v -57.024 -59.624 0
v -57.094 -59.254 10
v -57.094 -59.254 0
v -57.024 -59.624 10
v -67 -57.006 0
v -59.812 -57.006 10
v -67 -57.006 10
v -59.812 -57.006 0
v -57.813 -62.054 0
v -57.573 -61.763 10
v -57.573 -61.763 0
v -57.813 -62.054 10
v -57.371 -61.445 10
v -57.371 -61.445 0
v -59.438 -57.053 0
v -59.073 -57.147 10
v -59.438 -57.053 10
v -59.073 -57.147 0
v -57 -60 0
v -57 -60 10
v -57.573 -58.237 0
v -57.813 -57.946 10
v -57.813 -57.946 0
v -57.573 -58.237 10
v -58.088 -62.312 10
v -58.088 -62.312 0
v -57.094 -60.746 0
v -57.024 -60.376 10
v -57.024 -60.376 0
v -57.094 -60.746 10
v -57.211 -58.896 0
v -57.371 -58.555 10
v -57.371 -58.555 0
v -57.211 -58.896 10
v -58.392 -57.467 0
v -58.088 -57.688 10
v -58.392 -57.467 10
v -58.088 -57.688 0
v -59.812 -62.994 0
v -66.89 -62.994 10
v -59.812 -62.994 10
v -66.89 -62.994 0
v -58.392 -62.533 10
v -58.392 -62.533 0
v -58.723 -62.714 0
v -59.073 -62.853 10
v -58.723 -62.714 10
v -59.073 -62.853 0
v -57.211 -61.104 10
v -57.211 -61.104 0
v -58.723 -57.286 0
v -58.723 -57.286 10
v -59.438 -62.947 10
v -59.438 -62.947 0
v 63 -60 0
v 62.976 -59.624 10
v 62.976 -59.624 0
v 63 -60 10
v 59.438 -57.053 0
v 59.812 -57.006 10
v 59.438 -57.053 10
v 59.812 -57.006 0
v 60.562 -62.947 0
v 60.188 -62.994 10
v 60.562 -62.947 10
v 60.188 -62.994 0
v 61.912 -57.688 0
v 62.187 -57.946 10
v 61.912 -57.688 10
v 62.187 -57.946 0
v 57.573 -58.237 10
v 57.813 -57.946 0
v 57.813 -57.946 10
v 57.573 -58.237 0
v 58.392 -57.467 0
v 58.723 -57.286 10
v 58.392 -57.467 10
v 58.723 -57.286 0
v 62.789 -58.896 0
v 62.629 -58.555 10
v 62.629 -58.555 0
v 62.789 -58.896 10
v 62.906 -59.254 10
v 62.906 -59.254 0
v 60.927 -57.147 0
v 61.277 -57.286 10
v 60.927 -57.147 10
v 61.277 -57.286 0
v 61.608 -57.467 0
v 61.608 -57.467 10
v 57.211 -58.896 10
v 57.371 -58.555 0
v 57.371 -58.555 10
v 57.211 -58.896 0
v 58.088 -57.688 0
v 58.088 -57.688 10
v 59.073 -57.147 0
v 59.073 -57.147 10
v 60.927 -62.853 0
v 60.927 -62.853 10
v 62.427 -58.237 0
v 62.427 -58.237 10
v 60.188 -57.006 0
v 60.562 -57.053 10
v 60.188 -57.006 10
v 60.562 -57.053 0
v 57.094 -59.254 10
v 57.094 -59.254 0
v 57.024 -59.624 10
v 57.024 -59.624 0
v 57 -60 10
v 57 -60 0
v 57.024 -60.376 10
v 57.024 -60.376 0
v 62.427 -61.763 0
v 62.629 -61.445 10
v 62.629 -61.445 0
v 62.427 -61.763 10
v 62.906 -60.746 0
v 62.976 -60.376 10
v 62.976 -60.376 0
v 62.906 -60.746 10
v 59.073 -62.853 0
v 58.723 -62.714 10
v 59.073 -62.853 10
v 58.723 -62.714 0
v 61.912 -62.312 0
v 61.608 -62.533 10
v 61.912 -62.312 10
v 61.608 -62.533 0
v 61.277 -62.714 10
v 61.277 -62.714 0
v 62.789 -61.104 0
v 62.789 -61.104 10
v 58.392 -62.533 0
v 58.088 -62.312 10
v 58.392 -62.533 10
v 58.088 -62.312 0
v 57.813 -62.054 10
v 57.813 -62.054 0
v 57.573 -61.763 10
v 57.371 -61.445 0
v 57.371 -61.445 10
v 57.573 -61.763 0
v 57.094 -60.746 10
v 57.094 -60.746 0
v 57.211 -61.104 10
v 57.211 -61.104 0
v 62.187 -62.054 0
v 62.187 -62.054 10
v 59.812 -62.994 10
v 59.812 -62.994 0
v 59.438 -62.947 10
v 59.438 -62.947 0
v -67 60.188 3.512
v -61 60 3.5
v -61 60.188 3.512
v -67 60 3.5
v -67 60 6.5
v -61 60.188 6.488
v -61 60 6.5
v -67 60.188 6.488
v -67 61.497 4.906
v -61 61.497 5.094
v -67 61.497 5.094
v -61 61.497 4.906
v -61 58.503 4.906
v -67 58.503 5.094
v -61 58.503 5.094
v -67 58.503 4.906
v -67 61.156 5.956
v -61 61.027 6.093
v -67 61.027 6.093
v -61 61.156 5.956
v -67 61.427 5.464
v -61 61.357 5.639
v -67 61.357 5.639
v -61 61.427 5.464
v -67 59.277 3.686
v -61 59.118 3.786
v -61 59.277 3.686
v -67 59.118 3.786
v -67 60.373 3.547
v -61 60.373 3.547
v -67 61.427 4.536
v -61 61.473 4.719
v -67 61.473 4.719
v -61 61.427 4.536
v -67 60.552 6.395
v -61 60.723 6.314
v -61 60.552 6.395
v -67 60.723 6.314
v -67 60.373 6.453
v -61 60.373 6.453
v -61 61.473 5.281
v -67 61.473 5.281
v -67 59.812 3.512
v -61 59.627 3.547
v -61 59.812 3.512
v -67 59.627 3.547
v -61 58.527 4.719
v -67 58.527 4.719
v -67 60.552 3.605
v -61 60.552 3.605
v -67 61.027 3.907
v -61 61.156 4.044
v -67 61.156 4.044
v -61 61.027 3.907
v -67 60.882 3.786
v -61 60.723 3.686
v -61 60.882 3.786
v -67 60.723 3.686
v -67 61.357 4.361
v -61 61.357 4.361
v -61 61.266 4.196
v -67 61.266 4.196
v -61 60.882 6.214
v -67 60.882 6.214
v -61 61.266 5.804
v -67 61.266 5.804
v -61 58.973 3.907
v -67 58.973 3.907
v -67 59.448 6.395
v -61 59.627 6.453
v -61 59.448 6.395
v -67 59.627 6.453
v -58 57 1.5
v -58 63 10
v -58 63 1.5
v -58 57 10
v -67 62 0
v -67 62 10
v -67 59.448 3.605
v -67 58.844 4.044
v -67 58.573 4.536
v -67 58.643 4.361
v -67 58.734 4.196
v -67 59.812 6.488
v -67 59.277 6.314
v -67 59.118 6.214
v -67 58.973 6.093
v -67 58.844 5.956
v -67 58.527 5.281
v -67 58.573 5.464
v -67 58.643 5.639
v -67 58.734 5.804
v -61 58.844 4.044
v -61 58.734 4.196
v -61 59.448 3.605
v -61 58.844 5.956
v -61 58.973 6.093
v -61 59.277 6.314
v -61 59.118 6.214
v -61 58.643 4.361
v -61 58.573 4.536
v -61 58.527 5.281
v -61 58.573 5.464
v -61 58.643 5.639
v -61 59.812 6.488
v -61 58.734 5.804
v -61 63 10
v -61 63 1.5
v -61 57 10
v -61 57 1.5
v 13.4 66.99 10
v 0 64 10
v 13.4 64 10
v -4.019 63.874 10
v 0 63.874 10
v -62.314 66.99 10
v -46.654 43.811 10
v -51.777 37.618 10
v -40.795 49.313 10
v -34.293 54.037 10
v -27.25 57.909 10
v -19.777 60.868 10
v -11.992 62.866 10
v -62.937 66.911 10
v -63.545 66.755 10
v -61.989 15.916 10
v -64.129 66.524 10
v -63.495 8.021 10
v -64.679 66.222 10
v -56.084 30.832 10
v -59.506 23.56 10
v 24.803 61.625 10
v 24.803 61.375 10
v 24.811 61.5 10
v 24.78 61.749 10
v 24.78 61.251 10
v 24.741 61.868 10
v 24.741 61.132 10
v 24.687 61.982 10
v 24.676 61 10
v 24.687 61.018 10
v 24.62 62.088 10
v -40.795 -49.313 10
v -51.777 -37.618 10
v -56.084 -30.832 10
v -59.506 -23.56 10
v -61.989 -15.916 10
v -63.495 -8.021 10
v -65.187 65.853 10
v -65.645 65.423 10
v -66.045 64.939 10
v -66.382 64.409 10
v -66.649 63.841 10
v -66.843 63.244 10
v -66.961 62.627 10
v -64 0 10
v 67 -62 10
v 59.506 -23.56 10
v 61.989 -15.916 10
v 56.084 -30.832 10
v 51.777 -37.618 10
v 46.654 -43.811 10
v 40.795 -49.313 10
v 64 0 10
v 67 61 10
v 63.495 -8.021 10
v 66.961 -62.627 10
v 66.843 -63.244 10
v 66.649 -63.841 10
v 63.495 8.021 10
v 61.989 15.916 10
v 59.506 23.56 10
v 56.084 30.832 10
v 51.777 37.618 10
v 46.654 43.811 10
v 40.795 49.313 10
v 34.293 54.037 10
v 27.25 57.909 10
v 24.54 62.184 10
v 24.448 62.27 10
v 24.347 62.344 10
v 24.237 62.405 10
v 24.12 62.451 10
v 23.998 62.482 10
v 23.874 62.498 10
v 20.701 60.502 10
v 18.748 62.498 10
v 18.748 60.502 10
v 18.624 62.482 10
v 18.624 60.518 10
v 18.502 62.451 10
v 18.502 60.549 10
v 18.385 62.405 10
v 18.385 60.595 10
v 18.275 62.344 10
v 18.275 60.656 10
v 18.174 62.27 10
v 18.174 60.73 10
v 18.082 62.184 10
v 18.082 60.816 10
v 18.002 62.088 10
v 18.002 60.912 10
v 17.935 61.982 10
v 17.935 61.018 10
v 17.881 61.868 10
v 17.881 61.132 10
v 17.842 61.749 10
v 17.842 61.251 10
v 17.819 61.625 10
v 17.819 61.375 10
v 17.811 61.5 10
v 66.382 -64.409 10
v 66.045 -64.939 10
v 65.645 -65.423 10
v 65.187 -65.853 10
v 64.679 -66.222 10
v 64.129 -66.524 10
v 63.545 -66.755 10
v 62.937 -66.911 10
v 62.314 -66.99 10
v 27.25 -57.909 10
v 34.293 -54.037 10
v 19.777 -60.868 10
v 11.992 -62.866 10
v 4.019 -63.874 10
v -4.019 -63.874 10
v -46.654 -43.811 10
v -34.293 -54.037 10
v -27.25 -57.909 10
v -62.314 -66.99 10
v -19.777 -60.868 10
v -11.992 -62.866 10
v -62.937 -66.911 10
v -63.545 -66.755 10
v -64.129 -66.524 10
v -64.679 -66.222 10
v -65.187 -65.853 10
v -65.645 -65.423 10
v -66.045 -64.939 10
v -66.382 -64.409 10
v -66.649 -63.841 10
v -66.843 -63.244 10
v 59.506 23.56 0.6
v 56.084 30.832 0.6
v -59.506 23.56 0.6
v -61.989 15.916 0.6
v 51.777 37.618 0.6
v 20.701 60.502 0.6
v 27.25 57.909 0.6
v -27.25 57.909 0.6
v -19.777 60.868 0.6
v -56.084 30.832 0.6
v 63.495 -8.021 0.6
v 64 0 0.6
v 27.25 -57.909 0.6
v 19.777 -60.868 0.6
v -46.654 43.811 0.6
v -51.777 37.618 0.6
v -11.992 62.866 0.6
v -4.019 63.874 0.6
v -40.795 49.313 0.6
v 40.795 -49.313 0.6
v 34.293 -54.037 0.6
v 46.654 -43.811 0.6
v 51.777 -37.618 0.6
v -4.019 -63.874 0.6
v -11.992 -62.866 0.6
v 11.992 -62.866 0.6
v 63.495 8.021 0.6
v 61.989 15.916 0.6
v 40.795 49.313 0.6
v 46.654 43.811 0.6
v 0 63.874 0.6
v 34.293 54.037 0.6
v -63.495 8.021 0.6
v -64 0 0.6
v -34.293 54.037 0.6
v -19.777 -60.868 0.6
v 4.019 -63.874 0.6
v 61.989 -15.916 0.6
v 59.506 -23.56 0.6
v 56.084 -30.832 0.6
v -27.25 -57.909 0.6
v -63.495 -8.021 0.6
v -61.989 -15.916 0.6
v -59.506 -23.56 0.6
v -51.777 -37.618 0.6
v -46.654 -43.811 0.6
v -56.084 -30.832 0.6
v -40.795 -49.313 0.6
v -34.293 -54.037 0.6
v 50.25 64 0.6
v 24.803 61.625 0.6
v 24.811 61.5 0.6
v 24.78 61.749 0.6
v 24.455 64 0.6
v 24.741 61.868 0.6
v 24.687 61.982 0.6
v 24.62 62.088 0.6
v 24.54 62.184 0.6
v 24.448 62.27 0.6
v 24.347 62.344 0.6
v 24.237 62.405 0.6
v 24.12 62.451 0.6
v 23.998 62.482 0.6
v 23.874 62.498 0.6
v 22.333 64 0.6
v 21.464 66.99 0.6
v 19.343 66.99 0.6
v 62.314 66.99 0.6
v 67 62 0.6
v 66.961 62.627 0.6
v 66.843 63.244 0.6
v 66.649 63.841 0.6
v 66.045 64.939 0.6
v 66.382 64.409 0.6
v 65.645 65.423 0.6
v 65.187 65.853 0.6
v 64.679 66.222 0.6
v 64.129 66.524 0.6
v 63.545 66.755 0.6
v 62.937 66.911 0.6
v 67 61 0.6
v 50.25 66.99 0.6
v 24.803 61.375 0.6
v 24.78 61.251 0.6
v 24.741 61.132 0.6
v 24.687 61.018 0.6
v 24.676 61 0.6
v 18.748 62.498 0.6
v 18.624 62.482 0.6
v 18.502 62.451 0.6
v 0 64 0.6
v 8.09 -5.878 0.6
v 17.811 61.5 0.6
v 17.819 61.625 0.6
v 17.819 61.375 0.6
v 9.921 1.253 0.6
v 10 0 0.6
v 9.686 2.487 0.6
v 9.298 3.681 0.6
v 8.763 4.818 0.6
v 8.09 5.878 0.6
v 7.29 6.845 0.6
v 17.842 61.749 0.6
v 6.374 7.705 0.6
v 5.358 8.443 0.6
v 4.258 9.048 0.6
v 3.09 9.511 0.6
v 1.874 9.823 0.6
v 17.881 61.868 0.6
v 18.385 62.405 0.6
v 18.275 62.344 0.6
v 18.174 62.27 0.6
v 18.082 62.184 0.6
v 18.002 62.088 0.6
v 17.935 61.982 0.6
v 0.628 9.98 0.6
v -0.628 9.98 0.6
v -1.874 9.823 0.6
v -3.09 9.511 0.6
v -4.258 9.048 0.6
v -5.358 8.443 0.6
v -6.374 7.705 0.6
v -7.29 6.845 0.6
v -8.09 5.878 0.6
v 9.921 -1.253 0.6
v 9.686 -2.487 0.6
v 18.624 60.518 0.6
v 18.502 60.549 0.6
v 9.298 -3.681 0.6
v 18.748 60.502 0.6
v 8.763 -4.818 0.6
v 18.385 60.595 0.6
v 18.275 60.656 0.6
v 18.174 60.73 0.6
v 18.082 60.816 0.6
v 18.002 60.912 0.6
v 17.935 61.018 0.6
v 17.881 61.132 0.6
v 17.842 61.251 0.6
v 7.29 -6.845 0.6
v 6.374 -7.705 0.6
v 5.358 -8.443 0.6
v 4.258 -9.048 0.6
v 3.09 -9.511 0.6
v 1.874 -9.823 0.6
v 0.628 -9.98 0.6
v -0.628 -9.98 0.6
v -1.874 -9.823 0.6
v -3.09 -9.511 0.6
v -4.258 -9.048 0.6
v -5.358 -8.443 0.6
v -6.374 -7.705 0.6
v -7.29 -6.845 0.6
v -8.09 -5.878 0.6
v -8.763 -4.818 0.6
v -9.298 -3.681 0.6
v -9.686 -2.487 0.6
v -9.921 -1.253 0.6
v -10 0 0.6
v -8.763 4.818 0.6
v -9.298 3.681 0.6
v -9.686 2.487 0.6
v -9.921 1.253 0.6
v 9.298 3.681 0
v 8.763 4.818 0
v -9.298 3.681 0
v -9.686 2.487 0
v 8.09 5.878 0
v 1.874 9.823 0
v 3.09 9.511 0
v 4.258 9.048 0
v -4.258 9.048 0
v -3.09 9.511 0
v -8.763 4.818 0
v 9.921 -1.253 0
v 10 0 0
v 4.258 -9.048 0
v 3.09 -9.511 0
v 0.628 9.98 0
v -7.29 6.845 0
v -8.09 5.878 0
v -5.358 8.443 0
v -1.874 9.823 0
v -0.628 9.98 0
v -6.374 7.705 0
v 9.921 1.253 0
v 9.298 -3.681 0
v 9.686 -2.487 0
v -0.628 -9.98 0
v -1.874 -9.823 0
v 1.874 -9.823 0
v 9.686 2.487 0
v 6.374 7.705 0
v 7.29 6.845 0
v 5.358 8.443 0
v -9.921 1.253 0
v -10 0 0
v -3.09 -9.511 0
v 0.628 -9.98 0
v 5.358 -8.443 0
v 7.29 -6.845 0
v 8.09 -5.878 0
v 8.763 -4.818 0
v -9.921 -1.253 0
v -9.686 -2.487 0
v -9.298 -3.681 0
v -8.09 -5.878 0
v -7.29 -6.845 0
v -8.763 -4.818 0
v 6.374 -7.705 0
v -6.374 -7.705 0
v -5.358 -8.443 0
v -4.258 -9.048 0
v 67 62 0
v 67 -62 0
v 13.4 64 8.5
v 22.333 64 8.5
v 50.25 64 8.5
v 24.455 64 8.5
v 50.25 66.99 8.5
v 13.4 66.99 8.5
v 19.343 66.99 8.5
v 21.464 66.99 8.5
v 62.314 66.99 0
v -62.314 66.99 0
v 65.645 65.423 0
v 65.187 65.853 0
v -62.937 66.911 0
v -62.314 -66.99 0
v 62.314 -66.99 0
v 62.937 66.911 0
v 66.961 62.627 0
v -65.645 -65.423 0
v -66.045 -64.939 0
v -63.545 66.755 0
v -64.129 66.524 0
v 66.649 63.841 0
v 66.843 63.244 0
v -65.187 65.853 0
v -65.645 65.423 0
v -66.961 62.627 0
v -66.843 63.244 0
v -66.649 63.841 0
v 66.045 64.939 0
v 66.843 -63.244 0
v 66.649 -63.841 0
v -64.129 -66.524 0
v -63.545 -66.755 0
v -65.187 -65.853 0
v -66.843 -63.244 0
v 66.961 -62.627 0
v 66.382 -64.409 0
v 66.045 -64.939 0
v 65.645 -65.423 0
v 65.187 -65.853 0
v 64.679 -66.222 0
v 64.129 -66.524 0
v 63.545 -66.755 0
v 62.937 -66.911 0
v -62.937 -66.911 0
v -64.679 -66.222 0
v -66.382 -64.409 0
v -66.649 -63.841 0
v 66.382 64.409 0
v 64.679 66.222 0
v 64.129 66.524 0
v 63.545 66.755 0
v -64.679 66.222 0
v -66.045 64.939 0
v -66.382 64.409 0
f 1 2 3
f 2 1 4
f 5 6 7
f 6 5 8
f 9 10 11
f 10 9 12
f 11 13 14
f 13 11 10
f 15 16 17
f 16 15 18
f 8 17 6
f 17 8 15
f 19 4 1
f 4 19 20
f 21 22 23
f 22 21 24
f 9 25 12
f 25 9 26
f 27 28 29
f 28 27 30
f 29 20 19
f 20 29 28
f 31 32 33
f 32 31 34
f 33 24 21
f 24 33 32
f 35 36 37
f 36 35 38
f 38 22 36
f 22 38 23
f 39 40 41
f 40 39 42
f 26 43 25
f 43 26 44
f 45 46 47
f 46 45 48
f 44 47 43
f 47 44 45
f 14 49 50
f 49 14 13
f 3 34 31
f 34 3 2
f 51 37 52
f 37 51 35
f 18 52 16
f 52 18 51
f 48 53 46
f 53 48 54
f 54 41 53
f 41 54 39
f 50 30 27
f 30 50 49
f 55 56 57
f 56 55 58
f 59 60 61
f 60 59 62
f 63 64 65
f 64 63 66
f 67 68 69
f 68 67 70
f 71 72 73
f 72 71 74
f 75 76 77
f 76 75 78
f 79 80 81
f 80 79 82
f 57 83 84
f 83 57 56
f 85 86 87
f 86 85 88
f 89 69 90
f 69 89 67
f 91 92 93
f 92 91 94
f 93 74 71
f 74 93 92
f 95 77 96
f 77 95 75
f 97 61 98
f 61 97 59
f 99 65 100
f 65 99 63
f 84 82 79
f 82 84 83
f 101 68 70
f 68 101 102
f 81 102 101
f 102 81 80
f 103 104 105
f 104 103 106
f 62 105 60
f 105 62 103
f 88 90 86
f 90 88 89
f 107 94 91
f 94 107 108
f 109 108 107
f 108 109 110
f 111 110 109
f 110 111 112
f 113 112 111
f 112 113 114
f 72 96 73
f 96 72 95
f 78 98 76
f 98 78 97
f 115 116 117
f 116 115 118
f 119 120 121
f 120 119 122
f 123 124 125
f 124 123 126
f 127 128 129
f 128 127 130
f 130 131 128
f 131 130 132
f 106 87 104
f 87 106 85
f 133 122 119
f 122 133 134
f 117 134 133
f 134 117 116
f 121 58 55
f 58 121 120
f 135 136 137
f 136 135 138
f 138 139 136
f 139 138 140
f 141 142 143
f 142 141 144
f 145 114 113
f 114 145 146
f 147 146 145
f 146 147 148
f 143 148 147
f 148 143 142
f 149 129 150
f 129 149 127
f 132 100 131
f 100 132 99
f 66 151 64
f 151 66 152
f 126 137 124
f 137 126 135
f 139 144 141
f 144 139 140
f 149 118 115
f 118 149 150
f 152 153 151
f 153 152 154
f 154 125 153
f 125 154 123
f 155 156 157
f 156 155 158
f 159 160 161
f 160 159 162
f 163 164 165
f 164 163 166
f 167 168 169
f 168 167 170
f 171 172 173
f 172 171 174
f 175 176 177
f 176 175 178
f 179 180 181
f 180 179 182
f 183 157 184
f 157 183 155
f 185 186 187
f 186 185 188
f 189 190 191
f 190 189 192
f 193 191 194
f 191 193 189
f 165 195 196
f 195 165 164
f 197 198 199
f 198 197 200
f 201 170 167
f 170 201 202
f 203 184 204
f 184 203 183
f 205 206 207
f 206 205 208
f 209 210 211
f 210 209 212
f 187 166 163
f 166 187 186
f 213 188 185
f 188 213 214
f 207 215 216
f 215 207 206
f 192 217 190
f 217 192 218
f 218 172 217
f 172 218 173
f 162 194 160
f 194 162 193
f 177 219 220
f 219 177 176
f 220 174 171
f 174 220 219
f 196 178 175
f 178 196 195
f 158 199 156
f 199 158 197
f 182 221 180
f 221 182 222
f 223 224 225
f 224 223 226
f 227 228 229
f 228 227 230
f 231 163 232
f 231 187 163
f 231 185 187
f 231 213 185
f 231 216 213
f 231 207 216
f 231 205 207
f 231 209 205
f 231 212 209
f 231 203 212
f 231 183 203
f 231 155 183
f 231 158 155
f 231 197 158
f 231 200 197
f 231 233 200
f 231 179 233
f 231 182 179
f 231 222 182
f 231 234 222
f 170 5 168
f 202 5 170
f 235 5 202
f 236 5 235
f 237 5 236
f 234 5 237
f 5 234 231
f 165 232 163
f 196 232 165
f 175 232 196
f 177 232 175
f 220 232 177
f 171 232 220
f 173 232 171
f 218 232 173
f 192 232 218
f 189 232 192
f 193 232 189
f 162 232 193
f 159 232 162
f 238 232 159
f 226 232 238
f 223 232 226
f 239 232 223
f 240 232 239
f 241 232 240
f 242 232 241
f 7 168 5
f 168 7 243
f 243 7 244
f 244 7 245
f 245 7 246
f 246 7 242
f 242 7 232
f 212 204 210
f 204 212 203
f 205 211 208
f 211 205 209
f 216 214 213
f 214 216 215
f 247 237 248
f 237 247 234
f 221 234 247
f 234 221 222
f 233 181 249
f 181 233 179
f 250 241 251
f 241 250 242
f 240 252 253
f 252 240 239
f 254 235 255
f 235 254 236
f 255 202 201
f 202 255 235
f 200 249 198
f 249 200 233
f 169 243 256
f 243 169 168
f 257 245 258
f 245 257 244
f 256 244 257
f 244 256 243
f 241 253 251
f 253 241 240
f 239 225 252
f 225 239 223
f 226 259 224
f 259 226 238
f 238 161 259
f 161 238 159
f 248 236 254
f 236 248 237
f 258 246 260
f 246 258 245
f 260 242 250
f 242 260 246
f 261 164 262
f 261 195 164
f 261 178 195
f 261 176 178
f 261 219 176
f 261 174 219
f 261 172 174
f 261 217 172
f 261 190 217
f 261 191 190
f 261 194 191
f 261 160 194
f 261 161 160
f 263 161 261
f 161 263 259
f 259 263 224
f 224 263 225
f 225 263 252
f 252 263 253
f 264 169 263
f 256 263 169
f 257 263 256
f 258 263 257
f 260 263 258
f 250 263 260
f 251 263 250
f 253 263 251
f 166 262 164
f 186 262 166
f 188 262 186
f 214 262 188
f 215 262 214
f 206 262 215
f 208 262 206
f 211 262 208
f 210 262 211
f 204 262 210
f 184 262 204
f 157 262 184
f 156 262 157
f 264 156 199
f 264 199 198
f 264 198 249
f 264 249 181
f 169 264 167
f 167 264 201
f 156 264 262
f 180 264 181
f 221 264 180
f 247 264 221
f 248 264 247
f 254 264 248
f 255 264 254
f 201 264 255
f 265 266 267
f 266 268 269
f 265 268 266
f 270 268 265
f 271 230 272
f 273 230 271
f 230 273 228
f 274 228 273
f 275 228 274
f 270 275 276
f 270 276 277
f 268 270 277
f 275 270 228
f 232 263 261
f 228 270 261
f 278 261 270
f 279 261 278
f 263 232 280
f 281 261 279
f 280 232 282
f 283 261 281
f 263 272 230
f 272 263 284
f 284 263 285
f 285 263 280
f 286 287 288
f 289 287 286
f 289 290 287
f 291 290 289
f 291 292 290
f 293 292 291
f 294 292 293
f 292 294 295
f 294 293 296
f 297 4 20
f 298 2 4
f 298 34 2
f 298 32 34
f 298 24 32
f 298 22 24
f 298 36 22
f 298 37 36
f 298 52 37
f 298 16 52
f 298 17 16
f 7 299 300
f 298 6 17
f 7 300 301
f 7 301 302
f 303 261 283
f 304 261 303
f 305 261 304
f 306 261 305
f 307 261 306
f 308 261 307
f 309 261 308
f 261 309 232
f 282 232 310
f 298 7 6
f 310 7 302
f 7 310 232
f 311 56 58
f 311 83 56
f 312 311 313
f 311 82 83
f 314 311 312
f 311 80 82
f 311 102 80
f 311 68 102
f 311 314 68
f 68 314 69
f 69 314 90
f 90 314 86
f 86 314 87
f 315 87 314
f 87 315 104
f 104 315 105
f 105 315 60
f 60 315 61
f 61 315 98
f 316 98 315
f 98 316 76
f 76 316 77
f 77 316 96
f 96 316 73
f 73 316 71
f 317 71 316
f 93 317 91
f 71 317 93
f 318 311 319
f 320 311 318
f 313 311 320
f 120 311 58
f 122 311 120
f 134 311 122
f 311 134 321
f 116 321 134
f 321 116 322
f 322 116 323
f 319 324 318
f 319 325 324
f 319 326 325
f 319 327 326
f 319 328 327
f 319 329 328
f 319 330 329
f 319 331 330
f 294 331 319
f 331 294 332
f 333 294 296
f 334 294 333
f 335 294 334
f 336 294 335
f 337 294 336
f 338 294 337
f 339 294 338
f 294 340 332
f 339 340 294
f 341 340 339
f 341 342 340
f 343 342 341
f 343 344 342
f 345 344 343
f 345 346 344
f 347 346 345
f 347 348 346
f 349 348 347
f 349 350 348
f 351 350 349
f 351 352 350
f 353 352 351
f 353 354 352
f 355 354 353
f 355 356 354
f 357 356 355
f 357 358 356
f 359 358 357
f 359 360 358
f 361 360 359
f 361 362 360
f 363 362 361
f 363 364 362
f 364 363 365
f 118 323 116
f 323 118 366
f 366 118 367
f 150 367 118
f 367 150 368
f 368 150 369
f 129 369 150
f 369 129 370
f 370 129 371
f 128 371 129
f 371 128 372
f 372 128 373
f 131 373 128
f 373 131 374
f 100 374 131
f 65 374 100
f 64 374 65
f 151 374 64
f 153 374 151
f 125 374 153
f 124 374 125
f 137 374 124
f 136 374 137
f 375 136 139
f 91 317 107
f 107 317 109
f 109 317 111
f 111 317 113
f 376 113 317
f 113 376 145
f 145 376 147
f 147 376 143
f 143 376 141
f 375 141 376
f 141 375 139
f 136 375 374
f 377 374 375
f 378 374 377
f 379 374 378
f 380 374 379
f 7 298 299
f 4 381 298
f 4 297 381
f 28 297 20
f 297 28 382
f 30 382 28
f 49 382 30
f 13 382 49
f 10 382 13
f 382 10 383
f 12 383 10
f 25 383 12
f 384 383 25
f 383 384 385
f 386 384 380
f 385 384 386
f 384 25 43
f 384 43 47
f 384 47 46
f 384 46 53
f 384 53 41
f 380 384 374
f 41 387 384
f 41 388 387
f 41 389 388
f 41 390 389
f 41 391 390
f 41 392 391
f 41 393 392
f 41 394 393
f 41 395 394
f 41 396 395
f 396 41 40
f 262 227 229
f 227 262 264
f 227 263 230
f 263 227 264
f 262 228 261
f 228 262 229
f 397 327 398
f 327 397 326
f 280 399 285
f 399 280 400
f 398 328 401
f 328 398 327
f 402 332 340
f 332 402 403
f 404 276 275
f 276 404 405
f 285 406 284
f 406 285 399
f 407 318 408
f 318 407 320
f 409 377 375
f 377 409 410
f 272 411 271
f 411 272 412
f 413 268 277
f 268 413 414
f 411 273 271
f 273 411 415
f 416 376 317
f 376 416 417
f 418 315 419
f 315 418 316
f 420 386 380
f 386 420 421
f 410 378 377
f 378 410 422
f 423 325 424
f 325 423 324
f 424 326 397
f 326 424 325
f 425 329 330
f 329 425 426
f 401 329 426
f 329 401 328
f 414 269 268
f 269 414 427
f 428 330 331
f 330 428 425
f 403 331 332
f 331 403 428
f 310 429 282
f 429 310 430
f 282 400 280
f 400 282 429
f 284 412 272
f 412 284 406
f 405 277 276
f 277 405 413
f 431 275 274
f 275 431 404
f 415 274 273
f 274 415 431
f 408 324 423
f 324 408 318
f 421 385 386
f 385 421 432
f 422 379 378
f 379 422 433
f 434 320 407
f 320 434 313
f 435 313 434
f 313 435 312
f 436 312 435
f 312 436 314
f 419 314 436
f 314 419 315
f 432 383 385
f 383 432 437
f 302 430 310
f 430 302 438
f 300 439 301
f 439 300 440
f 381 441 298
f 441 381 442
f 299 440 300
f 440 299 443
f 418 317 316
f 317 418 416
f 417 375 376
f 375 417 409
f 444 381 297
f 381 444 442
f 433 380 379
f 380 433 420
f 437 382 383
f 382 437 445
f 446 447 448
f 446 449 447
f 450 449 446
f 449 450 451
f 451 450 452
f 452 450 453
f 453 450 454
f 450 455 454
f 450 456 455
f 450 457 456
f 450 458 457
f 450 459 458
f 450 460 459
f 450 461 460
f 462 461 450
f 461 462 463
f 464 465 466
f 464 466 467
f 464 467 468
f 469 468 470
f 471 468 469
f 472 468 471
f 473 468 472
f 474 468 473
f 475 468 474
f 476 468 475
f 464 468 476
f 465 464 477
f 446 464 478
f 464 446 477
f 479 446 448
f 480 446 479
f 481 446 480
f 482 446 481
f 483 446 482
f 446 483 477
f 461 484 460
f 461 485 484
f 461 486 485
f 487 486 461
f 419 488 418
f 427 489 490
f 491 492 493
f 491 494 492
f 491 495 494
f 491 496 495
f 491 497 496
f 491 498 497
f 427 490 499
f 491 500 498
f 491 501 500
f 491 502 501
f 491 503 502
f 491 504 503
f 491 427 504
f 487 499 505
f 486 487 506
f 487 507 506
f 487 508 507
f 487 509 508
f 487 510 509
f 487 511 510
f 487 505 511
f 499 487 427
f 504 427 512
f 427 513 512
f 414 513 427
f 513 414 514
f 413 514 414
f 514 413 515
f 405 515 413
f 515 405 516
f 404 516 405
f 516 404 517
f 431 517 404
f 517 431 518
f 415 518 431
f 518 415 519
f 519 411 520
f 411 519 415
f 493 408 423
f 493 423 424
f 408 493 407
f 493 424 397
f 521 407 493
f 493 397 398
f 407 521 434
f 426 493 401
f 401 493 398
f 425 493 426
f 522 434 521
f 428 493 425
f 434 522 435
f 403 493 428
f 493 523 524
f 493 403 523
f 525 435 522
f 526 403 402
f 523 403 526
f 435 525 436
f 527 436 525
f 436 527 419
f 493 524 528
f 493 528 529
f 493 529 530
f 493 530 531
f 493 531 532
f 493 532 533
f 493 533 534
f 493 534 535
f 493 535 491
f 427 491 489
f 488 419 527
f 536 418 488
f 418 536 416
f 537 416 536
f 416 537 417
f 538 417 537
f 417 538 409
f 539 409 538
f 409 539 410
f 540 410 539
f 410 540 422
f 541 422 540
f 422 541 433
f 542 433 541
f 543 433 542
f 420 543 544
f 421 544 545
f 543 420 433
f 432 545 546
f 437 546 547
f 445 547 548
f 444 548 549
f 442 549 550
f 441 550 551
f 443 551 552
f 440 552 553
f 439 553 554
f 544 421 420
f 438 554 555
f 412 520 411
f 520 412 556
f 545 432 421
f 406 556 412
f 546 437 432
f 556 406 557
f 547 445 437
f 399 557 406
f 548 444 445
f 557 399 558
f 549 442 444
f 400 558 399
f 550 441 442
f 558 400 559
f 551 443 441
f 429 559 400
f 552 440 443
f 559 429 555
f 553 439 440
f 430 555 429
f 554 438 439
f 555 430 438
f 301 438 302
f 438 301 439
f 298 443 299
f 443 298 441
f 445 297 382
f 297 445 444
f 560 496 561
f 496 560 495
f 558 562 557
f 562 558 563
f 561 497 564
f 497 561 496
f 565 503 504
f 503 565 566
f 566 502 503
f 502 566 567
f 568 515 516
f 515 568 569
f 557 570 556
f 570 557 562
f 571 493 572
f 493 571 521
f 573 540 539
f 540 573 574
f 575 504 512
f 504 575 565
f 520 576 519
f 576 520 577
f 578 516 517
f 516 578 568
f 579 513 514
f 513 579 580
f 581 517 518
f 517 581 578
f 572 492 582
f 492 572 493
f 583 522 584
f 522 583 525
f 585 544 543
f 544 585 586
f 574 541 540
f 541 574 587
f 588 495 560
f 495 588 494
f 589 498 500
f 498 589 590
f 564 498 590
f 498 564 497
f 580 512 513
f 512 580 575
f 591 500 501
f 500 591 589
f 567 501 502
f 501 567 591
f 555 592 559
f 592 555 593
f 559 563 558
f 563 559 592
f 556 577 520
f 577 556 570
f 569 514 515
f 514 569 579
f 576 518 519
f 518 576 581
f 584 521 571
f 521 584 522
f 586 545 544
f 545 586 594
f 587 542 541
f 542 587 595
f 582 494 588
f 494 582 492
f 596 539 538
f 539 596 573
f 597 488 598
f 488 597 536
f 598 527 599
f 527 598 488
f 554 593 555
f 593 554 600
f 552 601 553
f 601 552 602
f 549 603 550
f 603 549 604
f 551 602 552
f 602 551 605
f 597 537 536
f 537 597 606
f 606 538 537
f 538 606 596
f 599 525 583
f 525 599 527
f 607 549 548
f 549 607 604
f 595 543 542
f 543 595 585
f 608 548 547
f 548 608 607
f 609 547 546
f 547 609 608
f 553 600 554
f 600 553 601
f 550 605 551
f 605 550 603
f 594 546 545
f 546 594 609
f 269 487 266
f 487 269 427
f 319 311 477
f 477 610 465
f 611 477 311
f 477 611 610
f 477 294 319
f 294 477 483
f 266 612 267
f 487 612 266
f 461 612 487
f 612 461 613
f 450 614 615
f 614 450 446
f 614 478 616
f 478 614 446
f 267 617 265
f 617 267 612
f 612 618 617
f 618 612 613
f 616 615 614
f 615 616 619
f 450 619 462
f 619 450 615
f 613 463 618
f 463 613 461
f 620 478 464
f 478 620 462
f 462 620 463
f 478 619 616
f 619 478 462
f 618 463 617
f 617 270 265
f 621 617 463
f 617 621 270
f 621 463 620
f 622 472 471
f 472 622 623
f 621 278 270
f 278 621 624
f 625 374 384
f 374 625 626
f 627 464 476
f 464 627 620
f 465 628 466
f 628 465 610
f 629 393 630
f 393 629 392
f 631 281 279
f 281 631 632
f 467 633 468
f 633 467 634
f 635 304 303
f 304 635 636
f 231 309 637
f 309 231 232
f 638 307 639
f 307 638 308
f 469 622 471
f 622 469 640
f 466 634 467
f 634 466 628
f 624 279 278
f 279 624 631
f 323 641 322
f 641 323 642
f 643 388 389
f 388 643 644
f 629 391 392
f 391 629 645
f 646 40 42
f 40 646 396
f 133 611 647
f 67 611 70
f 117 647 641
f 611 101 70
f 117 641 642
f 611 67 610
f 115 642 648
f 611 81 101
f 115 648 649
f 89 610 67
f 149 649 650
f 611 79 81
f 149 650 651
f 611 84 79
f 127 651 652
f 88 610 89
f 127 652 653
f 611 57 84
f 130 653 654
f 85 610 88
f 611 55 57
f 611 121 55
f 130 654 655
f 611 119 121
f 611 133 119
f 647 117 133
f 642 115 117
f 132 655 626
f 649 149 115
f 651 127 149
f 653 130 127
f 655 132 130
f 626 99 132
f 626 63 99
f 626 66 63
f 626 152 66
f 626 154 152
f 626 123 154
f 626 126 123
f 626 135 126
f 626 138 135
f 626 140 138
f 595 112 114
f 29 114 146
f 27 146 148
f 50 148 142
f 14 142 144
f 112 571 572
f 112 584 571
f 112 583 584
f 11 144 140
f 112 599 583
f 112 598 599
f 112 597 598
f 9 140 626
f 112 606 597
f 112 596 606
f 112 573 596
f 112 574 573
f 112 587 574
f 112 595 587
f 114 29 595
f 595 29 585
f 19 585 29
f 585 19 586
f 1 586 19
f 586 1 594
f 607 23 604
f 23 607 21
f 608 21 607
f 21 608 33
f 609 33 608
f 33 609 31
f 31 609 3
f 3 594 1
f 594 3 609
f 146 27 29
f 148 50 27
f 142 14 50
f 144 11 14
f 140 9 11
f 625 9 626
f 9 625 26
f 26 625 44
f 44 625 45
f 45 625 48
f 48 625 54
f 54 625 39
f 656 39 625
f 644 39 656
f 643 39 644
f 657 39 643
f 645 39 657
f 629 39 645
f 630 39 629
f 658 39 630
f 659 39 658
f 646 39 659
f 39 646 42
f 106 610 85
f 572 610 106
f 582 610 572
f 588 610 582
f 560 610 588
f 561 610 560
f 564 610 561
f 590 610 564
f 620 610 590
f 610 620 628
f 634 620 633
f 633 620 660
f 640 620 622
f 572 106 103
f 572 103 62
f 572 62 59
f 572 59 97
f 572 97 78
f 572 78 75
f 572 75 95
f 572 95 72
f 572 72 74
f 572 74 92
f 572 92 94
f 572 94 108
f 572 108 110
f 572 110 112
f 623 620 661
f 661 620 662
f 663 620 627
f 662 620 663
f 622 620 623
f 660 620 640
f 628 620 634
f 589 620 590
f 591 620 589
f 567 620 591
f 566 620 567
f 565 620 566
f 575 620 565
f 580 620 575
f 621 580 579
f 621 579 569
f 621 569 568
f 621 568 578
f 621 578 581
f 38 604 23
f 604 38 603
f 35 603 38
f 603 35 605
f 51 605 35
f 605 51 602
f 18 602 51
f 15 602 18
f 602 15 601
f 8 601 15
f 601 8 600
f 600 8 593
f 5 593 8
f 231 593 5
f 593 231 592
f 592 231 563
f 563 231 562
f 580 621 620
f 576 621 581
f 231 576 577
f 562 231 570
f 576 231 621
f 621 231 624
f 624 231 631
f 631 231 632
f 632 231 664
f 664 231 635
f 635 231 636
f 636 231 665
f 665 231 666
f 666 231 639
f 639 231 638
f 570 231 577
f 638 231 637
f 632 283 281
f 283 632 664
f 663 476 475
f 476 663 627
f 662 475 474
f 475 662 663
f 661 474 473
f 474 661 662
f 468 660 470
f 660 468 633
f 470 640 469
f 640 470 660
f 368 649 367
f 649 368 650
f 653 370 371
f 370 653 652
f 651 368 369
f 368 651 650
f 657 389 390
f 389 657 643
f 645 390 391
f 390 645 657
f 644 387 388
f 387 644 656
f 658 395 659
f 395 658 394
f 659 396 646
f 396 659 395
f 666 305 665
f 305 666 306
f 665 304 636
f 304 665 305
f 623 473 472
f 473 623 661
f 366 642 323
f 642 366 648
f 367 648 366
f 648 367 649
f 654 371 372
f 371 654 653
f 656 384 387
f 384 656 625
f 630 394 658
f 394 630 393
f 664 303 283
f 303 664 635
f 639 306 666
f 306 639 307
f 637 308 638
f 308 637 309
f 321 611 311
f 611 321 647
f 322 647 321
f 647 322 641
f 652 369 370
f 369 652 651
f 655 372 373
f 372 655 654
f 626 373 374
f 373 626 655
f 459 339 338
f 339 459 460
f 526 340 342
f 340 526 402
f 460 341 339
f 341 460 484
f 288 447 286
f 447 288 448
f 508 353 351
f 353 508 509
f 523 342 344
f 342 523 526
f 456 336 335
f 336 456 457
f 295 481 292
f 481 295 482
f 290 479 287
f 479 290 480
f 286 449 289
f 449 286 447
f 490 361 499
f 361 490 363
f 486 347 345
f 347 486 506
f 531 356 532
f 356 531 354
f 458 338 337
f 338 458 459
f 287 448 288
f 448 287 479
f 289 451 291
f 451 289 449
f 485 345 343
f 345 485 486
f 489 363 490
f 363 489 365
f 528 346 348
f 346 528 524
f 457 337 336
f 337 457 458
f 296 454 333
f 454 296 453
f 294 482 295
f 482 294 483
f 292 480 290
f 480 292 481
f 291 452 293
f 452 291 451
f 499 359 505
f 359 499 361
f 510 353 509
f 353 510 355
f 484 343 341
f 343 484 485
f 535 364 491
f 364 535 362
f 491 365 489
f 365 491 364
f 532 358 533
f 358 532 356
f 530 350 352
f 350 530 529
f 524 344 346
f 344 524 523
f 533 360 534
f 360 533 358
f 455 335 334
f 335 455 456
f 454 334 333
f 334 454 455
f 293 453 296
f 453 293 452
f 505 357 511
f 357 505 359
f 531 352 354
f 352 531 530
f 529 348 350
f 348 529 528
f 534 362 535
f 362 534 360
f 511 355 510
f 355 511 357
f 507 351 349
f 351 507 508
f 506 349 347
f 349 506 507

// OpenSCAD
$fn = 50;


union() {
	difference() {
		union() {
			translate(v = [0, 0, 0]) {
				rotate(a = [0, 0, 0]) {
					hull() {
						translate(v = [-62.0000000000, 62.0000000000, 0]) {
							rotate(a = [0, 0, 0]) {
								translate(v = [0, 0, 0]) {
									rotate(a = [0, 0, 0]) {
										cylinder(h = 10, r = 5);
									}
								}
							}
						}
						translate(v = [62.0000000000, 62.0000000000, 0]) {
							rotate(a = [0, 0, 0]) {
								translate(v = [0, 0, 0]) {
									rotate(a = [0, 0, 0]) {
										cylinder(h = 10, r = 5);
									}
								}
							}
						}
						translate(v = [-62.0000000000, -62.0000000000, 0]) {
							rotate(a = [0, 0, 0]) {
								translate(v = [0, 0, 0]) {
									rotate(a = [0, 0, 0]) {
										cylinder(h = 10, r = 5);
									}
								}
							}
						}
						translate(v = [62.0000000000, -62.0000000000, 0]) {
							rotate(a = [0, 0, 0]) {
								translate(v = [0, 0, 0]) {
									rotate(a = [0, 0, 0]) {
										cylinder(h = 10, r = 5);
									}
								}
							}
						}
					}
				}
			}
		}
		union() {
			translate(v = [-67.5000000000, -60.0000000000, -125]) {
				rotate(a = [0, 0, 0]) {
					hull() {
						translate(v = [7.5000000000, 0, 0]) {
							rotate(a = [0, 0, 0]) {
								translate(v = [0, 0, 0]) {
									rotate(a = [0, 0, 0]) {
										cylinder(h = 250, r = 3.0000000000);
									}
								}
							}
						}
						translate(v = [-7.5000000000, 0, 0]) {
							rotate(a = [0, 0, 0]) {
								translate(v = [0, 0, 0]) {
									rotate(a = [0, 0, 0]) {
										cylinder(h = 250, r = 3.0000000000);
									}
								}
							}
						}
					}
				}
			}
			translate(v = [60.0000000000, -60.0000000000, -125.0000000000]) {
				rotate(a = [0, 0, 0]) {
					cylinder(h = 250, r = 3.0000000000);
				}
			}
			translate(v = [-67.0000000000, 60.0000000000, 5.0000000000]) {
				rotate(a = [0, 90, 0]) {
					cylinder(h = 9, r = 1.5000000000);
				}
			}
			translate(v = [-61.0000000000, 57.0000000000, 1.5000000000]) {
				rotate(a = [0, 0, 0]) {
					cube(size = [3, 6, 8.5000000000]);
				}
			}
			translate(v = [0, 0, 0.6000000000]) {
				rotate(a = [0, 0, 0]) {
					cylinder(h = 12.4000000000, r = 64.0000000000);
				}
			}
			translate(v = [0, 0, -5.0000000000]) {
				rotate(a = [0, 0, 0]) {
					cylinder(h = 10, r = 10.0000000000);
				}
			}
			translate(v = [0.0000000000, 61.0000000000, 0.6000000000]) {
				rotate(a = [0, 0, 0]) {
					cube(size = [67.0000000000, 3, 12.4000000000]);
				}
			}
			translate(v = [50.2500000000, 61.0000000000, 0.6000000000]) {
				rotate(a = [0, 0, 0]) {
					cube(size = [16.7500000000, 6, 12.4000000000]);
				}
			}
			translate(v = [13.4000000000, 61.0000000000, 8.5000000000]) {
				rotate(a = [0, 0, 0]) {
					cube(size = [53.6000000000, 6, 1.5000000000]);
				}
			}
			translate(v = [18.5833333333, 67.7500000000, 0.6000000000]) {
				rotate(a = [0, 0, -45]) {
					cube(size = [7.5000000000, 1.5000000000, 12.4000000000]);
				}
			}
			translate(v = [12.0610000000, 60.5000000000, 0.6000000000]) {
				rotate(a = [0, 0, 0]) {
					cube(size = [7.5000000000, 2, 9.4000000000]);
				}
			}
		}
	}
	union() {
		translate(v = [21.3110000000, 61.5000000000, 0]) {
			rotate(a = [0, 0, 0]) {
				hull() {
					translate(v = [2.5000000000, 0, 0]) {
						rotate(a = [0, 0, 0]) {
							translate(v = [0, 0, 0]) {
								rotate(a = [0, 0, 0]) {
									cylinder(h = 10, r = 1.0000000000);
								}
							}
						}
					}
					translate(v = [-2.5000000000, 0, 0]) {
						rotate(a = [0, 0, 0]) {
							translate(v = [0, 0, 0]) {
								rotate(a = [0, 0, 0]) {
									cylinder(h = 10, r = 1.0000000000);
								}
							}
						}
					}
				}
			}
		}
	}
}
